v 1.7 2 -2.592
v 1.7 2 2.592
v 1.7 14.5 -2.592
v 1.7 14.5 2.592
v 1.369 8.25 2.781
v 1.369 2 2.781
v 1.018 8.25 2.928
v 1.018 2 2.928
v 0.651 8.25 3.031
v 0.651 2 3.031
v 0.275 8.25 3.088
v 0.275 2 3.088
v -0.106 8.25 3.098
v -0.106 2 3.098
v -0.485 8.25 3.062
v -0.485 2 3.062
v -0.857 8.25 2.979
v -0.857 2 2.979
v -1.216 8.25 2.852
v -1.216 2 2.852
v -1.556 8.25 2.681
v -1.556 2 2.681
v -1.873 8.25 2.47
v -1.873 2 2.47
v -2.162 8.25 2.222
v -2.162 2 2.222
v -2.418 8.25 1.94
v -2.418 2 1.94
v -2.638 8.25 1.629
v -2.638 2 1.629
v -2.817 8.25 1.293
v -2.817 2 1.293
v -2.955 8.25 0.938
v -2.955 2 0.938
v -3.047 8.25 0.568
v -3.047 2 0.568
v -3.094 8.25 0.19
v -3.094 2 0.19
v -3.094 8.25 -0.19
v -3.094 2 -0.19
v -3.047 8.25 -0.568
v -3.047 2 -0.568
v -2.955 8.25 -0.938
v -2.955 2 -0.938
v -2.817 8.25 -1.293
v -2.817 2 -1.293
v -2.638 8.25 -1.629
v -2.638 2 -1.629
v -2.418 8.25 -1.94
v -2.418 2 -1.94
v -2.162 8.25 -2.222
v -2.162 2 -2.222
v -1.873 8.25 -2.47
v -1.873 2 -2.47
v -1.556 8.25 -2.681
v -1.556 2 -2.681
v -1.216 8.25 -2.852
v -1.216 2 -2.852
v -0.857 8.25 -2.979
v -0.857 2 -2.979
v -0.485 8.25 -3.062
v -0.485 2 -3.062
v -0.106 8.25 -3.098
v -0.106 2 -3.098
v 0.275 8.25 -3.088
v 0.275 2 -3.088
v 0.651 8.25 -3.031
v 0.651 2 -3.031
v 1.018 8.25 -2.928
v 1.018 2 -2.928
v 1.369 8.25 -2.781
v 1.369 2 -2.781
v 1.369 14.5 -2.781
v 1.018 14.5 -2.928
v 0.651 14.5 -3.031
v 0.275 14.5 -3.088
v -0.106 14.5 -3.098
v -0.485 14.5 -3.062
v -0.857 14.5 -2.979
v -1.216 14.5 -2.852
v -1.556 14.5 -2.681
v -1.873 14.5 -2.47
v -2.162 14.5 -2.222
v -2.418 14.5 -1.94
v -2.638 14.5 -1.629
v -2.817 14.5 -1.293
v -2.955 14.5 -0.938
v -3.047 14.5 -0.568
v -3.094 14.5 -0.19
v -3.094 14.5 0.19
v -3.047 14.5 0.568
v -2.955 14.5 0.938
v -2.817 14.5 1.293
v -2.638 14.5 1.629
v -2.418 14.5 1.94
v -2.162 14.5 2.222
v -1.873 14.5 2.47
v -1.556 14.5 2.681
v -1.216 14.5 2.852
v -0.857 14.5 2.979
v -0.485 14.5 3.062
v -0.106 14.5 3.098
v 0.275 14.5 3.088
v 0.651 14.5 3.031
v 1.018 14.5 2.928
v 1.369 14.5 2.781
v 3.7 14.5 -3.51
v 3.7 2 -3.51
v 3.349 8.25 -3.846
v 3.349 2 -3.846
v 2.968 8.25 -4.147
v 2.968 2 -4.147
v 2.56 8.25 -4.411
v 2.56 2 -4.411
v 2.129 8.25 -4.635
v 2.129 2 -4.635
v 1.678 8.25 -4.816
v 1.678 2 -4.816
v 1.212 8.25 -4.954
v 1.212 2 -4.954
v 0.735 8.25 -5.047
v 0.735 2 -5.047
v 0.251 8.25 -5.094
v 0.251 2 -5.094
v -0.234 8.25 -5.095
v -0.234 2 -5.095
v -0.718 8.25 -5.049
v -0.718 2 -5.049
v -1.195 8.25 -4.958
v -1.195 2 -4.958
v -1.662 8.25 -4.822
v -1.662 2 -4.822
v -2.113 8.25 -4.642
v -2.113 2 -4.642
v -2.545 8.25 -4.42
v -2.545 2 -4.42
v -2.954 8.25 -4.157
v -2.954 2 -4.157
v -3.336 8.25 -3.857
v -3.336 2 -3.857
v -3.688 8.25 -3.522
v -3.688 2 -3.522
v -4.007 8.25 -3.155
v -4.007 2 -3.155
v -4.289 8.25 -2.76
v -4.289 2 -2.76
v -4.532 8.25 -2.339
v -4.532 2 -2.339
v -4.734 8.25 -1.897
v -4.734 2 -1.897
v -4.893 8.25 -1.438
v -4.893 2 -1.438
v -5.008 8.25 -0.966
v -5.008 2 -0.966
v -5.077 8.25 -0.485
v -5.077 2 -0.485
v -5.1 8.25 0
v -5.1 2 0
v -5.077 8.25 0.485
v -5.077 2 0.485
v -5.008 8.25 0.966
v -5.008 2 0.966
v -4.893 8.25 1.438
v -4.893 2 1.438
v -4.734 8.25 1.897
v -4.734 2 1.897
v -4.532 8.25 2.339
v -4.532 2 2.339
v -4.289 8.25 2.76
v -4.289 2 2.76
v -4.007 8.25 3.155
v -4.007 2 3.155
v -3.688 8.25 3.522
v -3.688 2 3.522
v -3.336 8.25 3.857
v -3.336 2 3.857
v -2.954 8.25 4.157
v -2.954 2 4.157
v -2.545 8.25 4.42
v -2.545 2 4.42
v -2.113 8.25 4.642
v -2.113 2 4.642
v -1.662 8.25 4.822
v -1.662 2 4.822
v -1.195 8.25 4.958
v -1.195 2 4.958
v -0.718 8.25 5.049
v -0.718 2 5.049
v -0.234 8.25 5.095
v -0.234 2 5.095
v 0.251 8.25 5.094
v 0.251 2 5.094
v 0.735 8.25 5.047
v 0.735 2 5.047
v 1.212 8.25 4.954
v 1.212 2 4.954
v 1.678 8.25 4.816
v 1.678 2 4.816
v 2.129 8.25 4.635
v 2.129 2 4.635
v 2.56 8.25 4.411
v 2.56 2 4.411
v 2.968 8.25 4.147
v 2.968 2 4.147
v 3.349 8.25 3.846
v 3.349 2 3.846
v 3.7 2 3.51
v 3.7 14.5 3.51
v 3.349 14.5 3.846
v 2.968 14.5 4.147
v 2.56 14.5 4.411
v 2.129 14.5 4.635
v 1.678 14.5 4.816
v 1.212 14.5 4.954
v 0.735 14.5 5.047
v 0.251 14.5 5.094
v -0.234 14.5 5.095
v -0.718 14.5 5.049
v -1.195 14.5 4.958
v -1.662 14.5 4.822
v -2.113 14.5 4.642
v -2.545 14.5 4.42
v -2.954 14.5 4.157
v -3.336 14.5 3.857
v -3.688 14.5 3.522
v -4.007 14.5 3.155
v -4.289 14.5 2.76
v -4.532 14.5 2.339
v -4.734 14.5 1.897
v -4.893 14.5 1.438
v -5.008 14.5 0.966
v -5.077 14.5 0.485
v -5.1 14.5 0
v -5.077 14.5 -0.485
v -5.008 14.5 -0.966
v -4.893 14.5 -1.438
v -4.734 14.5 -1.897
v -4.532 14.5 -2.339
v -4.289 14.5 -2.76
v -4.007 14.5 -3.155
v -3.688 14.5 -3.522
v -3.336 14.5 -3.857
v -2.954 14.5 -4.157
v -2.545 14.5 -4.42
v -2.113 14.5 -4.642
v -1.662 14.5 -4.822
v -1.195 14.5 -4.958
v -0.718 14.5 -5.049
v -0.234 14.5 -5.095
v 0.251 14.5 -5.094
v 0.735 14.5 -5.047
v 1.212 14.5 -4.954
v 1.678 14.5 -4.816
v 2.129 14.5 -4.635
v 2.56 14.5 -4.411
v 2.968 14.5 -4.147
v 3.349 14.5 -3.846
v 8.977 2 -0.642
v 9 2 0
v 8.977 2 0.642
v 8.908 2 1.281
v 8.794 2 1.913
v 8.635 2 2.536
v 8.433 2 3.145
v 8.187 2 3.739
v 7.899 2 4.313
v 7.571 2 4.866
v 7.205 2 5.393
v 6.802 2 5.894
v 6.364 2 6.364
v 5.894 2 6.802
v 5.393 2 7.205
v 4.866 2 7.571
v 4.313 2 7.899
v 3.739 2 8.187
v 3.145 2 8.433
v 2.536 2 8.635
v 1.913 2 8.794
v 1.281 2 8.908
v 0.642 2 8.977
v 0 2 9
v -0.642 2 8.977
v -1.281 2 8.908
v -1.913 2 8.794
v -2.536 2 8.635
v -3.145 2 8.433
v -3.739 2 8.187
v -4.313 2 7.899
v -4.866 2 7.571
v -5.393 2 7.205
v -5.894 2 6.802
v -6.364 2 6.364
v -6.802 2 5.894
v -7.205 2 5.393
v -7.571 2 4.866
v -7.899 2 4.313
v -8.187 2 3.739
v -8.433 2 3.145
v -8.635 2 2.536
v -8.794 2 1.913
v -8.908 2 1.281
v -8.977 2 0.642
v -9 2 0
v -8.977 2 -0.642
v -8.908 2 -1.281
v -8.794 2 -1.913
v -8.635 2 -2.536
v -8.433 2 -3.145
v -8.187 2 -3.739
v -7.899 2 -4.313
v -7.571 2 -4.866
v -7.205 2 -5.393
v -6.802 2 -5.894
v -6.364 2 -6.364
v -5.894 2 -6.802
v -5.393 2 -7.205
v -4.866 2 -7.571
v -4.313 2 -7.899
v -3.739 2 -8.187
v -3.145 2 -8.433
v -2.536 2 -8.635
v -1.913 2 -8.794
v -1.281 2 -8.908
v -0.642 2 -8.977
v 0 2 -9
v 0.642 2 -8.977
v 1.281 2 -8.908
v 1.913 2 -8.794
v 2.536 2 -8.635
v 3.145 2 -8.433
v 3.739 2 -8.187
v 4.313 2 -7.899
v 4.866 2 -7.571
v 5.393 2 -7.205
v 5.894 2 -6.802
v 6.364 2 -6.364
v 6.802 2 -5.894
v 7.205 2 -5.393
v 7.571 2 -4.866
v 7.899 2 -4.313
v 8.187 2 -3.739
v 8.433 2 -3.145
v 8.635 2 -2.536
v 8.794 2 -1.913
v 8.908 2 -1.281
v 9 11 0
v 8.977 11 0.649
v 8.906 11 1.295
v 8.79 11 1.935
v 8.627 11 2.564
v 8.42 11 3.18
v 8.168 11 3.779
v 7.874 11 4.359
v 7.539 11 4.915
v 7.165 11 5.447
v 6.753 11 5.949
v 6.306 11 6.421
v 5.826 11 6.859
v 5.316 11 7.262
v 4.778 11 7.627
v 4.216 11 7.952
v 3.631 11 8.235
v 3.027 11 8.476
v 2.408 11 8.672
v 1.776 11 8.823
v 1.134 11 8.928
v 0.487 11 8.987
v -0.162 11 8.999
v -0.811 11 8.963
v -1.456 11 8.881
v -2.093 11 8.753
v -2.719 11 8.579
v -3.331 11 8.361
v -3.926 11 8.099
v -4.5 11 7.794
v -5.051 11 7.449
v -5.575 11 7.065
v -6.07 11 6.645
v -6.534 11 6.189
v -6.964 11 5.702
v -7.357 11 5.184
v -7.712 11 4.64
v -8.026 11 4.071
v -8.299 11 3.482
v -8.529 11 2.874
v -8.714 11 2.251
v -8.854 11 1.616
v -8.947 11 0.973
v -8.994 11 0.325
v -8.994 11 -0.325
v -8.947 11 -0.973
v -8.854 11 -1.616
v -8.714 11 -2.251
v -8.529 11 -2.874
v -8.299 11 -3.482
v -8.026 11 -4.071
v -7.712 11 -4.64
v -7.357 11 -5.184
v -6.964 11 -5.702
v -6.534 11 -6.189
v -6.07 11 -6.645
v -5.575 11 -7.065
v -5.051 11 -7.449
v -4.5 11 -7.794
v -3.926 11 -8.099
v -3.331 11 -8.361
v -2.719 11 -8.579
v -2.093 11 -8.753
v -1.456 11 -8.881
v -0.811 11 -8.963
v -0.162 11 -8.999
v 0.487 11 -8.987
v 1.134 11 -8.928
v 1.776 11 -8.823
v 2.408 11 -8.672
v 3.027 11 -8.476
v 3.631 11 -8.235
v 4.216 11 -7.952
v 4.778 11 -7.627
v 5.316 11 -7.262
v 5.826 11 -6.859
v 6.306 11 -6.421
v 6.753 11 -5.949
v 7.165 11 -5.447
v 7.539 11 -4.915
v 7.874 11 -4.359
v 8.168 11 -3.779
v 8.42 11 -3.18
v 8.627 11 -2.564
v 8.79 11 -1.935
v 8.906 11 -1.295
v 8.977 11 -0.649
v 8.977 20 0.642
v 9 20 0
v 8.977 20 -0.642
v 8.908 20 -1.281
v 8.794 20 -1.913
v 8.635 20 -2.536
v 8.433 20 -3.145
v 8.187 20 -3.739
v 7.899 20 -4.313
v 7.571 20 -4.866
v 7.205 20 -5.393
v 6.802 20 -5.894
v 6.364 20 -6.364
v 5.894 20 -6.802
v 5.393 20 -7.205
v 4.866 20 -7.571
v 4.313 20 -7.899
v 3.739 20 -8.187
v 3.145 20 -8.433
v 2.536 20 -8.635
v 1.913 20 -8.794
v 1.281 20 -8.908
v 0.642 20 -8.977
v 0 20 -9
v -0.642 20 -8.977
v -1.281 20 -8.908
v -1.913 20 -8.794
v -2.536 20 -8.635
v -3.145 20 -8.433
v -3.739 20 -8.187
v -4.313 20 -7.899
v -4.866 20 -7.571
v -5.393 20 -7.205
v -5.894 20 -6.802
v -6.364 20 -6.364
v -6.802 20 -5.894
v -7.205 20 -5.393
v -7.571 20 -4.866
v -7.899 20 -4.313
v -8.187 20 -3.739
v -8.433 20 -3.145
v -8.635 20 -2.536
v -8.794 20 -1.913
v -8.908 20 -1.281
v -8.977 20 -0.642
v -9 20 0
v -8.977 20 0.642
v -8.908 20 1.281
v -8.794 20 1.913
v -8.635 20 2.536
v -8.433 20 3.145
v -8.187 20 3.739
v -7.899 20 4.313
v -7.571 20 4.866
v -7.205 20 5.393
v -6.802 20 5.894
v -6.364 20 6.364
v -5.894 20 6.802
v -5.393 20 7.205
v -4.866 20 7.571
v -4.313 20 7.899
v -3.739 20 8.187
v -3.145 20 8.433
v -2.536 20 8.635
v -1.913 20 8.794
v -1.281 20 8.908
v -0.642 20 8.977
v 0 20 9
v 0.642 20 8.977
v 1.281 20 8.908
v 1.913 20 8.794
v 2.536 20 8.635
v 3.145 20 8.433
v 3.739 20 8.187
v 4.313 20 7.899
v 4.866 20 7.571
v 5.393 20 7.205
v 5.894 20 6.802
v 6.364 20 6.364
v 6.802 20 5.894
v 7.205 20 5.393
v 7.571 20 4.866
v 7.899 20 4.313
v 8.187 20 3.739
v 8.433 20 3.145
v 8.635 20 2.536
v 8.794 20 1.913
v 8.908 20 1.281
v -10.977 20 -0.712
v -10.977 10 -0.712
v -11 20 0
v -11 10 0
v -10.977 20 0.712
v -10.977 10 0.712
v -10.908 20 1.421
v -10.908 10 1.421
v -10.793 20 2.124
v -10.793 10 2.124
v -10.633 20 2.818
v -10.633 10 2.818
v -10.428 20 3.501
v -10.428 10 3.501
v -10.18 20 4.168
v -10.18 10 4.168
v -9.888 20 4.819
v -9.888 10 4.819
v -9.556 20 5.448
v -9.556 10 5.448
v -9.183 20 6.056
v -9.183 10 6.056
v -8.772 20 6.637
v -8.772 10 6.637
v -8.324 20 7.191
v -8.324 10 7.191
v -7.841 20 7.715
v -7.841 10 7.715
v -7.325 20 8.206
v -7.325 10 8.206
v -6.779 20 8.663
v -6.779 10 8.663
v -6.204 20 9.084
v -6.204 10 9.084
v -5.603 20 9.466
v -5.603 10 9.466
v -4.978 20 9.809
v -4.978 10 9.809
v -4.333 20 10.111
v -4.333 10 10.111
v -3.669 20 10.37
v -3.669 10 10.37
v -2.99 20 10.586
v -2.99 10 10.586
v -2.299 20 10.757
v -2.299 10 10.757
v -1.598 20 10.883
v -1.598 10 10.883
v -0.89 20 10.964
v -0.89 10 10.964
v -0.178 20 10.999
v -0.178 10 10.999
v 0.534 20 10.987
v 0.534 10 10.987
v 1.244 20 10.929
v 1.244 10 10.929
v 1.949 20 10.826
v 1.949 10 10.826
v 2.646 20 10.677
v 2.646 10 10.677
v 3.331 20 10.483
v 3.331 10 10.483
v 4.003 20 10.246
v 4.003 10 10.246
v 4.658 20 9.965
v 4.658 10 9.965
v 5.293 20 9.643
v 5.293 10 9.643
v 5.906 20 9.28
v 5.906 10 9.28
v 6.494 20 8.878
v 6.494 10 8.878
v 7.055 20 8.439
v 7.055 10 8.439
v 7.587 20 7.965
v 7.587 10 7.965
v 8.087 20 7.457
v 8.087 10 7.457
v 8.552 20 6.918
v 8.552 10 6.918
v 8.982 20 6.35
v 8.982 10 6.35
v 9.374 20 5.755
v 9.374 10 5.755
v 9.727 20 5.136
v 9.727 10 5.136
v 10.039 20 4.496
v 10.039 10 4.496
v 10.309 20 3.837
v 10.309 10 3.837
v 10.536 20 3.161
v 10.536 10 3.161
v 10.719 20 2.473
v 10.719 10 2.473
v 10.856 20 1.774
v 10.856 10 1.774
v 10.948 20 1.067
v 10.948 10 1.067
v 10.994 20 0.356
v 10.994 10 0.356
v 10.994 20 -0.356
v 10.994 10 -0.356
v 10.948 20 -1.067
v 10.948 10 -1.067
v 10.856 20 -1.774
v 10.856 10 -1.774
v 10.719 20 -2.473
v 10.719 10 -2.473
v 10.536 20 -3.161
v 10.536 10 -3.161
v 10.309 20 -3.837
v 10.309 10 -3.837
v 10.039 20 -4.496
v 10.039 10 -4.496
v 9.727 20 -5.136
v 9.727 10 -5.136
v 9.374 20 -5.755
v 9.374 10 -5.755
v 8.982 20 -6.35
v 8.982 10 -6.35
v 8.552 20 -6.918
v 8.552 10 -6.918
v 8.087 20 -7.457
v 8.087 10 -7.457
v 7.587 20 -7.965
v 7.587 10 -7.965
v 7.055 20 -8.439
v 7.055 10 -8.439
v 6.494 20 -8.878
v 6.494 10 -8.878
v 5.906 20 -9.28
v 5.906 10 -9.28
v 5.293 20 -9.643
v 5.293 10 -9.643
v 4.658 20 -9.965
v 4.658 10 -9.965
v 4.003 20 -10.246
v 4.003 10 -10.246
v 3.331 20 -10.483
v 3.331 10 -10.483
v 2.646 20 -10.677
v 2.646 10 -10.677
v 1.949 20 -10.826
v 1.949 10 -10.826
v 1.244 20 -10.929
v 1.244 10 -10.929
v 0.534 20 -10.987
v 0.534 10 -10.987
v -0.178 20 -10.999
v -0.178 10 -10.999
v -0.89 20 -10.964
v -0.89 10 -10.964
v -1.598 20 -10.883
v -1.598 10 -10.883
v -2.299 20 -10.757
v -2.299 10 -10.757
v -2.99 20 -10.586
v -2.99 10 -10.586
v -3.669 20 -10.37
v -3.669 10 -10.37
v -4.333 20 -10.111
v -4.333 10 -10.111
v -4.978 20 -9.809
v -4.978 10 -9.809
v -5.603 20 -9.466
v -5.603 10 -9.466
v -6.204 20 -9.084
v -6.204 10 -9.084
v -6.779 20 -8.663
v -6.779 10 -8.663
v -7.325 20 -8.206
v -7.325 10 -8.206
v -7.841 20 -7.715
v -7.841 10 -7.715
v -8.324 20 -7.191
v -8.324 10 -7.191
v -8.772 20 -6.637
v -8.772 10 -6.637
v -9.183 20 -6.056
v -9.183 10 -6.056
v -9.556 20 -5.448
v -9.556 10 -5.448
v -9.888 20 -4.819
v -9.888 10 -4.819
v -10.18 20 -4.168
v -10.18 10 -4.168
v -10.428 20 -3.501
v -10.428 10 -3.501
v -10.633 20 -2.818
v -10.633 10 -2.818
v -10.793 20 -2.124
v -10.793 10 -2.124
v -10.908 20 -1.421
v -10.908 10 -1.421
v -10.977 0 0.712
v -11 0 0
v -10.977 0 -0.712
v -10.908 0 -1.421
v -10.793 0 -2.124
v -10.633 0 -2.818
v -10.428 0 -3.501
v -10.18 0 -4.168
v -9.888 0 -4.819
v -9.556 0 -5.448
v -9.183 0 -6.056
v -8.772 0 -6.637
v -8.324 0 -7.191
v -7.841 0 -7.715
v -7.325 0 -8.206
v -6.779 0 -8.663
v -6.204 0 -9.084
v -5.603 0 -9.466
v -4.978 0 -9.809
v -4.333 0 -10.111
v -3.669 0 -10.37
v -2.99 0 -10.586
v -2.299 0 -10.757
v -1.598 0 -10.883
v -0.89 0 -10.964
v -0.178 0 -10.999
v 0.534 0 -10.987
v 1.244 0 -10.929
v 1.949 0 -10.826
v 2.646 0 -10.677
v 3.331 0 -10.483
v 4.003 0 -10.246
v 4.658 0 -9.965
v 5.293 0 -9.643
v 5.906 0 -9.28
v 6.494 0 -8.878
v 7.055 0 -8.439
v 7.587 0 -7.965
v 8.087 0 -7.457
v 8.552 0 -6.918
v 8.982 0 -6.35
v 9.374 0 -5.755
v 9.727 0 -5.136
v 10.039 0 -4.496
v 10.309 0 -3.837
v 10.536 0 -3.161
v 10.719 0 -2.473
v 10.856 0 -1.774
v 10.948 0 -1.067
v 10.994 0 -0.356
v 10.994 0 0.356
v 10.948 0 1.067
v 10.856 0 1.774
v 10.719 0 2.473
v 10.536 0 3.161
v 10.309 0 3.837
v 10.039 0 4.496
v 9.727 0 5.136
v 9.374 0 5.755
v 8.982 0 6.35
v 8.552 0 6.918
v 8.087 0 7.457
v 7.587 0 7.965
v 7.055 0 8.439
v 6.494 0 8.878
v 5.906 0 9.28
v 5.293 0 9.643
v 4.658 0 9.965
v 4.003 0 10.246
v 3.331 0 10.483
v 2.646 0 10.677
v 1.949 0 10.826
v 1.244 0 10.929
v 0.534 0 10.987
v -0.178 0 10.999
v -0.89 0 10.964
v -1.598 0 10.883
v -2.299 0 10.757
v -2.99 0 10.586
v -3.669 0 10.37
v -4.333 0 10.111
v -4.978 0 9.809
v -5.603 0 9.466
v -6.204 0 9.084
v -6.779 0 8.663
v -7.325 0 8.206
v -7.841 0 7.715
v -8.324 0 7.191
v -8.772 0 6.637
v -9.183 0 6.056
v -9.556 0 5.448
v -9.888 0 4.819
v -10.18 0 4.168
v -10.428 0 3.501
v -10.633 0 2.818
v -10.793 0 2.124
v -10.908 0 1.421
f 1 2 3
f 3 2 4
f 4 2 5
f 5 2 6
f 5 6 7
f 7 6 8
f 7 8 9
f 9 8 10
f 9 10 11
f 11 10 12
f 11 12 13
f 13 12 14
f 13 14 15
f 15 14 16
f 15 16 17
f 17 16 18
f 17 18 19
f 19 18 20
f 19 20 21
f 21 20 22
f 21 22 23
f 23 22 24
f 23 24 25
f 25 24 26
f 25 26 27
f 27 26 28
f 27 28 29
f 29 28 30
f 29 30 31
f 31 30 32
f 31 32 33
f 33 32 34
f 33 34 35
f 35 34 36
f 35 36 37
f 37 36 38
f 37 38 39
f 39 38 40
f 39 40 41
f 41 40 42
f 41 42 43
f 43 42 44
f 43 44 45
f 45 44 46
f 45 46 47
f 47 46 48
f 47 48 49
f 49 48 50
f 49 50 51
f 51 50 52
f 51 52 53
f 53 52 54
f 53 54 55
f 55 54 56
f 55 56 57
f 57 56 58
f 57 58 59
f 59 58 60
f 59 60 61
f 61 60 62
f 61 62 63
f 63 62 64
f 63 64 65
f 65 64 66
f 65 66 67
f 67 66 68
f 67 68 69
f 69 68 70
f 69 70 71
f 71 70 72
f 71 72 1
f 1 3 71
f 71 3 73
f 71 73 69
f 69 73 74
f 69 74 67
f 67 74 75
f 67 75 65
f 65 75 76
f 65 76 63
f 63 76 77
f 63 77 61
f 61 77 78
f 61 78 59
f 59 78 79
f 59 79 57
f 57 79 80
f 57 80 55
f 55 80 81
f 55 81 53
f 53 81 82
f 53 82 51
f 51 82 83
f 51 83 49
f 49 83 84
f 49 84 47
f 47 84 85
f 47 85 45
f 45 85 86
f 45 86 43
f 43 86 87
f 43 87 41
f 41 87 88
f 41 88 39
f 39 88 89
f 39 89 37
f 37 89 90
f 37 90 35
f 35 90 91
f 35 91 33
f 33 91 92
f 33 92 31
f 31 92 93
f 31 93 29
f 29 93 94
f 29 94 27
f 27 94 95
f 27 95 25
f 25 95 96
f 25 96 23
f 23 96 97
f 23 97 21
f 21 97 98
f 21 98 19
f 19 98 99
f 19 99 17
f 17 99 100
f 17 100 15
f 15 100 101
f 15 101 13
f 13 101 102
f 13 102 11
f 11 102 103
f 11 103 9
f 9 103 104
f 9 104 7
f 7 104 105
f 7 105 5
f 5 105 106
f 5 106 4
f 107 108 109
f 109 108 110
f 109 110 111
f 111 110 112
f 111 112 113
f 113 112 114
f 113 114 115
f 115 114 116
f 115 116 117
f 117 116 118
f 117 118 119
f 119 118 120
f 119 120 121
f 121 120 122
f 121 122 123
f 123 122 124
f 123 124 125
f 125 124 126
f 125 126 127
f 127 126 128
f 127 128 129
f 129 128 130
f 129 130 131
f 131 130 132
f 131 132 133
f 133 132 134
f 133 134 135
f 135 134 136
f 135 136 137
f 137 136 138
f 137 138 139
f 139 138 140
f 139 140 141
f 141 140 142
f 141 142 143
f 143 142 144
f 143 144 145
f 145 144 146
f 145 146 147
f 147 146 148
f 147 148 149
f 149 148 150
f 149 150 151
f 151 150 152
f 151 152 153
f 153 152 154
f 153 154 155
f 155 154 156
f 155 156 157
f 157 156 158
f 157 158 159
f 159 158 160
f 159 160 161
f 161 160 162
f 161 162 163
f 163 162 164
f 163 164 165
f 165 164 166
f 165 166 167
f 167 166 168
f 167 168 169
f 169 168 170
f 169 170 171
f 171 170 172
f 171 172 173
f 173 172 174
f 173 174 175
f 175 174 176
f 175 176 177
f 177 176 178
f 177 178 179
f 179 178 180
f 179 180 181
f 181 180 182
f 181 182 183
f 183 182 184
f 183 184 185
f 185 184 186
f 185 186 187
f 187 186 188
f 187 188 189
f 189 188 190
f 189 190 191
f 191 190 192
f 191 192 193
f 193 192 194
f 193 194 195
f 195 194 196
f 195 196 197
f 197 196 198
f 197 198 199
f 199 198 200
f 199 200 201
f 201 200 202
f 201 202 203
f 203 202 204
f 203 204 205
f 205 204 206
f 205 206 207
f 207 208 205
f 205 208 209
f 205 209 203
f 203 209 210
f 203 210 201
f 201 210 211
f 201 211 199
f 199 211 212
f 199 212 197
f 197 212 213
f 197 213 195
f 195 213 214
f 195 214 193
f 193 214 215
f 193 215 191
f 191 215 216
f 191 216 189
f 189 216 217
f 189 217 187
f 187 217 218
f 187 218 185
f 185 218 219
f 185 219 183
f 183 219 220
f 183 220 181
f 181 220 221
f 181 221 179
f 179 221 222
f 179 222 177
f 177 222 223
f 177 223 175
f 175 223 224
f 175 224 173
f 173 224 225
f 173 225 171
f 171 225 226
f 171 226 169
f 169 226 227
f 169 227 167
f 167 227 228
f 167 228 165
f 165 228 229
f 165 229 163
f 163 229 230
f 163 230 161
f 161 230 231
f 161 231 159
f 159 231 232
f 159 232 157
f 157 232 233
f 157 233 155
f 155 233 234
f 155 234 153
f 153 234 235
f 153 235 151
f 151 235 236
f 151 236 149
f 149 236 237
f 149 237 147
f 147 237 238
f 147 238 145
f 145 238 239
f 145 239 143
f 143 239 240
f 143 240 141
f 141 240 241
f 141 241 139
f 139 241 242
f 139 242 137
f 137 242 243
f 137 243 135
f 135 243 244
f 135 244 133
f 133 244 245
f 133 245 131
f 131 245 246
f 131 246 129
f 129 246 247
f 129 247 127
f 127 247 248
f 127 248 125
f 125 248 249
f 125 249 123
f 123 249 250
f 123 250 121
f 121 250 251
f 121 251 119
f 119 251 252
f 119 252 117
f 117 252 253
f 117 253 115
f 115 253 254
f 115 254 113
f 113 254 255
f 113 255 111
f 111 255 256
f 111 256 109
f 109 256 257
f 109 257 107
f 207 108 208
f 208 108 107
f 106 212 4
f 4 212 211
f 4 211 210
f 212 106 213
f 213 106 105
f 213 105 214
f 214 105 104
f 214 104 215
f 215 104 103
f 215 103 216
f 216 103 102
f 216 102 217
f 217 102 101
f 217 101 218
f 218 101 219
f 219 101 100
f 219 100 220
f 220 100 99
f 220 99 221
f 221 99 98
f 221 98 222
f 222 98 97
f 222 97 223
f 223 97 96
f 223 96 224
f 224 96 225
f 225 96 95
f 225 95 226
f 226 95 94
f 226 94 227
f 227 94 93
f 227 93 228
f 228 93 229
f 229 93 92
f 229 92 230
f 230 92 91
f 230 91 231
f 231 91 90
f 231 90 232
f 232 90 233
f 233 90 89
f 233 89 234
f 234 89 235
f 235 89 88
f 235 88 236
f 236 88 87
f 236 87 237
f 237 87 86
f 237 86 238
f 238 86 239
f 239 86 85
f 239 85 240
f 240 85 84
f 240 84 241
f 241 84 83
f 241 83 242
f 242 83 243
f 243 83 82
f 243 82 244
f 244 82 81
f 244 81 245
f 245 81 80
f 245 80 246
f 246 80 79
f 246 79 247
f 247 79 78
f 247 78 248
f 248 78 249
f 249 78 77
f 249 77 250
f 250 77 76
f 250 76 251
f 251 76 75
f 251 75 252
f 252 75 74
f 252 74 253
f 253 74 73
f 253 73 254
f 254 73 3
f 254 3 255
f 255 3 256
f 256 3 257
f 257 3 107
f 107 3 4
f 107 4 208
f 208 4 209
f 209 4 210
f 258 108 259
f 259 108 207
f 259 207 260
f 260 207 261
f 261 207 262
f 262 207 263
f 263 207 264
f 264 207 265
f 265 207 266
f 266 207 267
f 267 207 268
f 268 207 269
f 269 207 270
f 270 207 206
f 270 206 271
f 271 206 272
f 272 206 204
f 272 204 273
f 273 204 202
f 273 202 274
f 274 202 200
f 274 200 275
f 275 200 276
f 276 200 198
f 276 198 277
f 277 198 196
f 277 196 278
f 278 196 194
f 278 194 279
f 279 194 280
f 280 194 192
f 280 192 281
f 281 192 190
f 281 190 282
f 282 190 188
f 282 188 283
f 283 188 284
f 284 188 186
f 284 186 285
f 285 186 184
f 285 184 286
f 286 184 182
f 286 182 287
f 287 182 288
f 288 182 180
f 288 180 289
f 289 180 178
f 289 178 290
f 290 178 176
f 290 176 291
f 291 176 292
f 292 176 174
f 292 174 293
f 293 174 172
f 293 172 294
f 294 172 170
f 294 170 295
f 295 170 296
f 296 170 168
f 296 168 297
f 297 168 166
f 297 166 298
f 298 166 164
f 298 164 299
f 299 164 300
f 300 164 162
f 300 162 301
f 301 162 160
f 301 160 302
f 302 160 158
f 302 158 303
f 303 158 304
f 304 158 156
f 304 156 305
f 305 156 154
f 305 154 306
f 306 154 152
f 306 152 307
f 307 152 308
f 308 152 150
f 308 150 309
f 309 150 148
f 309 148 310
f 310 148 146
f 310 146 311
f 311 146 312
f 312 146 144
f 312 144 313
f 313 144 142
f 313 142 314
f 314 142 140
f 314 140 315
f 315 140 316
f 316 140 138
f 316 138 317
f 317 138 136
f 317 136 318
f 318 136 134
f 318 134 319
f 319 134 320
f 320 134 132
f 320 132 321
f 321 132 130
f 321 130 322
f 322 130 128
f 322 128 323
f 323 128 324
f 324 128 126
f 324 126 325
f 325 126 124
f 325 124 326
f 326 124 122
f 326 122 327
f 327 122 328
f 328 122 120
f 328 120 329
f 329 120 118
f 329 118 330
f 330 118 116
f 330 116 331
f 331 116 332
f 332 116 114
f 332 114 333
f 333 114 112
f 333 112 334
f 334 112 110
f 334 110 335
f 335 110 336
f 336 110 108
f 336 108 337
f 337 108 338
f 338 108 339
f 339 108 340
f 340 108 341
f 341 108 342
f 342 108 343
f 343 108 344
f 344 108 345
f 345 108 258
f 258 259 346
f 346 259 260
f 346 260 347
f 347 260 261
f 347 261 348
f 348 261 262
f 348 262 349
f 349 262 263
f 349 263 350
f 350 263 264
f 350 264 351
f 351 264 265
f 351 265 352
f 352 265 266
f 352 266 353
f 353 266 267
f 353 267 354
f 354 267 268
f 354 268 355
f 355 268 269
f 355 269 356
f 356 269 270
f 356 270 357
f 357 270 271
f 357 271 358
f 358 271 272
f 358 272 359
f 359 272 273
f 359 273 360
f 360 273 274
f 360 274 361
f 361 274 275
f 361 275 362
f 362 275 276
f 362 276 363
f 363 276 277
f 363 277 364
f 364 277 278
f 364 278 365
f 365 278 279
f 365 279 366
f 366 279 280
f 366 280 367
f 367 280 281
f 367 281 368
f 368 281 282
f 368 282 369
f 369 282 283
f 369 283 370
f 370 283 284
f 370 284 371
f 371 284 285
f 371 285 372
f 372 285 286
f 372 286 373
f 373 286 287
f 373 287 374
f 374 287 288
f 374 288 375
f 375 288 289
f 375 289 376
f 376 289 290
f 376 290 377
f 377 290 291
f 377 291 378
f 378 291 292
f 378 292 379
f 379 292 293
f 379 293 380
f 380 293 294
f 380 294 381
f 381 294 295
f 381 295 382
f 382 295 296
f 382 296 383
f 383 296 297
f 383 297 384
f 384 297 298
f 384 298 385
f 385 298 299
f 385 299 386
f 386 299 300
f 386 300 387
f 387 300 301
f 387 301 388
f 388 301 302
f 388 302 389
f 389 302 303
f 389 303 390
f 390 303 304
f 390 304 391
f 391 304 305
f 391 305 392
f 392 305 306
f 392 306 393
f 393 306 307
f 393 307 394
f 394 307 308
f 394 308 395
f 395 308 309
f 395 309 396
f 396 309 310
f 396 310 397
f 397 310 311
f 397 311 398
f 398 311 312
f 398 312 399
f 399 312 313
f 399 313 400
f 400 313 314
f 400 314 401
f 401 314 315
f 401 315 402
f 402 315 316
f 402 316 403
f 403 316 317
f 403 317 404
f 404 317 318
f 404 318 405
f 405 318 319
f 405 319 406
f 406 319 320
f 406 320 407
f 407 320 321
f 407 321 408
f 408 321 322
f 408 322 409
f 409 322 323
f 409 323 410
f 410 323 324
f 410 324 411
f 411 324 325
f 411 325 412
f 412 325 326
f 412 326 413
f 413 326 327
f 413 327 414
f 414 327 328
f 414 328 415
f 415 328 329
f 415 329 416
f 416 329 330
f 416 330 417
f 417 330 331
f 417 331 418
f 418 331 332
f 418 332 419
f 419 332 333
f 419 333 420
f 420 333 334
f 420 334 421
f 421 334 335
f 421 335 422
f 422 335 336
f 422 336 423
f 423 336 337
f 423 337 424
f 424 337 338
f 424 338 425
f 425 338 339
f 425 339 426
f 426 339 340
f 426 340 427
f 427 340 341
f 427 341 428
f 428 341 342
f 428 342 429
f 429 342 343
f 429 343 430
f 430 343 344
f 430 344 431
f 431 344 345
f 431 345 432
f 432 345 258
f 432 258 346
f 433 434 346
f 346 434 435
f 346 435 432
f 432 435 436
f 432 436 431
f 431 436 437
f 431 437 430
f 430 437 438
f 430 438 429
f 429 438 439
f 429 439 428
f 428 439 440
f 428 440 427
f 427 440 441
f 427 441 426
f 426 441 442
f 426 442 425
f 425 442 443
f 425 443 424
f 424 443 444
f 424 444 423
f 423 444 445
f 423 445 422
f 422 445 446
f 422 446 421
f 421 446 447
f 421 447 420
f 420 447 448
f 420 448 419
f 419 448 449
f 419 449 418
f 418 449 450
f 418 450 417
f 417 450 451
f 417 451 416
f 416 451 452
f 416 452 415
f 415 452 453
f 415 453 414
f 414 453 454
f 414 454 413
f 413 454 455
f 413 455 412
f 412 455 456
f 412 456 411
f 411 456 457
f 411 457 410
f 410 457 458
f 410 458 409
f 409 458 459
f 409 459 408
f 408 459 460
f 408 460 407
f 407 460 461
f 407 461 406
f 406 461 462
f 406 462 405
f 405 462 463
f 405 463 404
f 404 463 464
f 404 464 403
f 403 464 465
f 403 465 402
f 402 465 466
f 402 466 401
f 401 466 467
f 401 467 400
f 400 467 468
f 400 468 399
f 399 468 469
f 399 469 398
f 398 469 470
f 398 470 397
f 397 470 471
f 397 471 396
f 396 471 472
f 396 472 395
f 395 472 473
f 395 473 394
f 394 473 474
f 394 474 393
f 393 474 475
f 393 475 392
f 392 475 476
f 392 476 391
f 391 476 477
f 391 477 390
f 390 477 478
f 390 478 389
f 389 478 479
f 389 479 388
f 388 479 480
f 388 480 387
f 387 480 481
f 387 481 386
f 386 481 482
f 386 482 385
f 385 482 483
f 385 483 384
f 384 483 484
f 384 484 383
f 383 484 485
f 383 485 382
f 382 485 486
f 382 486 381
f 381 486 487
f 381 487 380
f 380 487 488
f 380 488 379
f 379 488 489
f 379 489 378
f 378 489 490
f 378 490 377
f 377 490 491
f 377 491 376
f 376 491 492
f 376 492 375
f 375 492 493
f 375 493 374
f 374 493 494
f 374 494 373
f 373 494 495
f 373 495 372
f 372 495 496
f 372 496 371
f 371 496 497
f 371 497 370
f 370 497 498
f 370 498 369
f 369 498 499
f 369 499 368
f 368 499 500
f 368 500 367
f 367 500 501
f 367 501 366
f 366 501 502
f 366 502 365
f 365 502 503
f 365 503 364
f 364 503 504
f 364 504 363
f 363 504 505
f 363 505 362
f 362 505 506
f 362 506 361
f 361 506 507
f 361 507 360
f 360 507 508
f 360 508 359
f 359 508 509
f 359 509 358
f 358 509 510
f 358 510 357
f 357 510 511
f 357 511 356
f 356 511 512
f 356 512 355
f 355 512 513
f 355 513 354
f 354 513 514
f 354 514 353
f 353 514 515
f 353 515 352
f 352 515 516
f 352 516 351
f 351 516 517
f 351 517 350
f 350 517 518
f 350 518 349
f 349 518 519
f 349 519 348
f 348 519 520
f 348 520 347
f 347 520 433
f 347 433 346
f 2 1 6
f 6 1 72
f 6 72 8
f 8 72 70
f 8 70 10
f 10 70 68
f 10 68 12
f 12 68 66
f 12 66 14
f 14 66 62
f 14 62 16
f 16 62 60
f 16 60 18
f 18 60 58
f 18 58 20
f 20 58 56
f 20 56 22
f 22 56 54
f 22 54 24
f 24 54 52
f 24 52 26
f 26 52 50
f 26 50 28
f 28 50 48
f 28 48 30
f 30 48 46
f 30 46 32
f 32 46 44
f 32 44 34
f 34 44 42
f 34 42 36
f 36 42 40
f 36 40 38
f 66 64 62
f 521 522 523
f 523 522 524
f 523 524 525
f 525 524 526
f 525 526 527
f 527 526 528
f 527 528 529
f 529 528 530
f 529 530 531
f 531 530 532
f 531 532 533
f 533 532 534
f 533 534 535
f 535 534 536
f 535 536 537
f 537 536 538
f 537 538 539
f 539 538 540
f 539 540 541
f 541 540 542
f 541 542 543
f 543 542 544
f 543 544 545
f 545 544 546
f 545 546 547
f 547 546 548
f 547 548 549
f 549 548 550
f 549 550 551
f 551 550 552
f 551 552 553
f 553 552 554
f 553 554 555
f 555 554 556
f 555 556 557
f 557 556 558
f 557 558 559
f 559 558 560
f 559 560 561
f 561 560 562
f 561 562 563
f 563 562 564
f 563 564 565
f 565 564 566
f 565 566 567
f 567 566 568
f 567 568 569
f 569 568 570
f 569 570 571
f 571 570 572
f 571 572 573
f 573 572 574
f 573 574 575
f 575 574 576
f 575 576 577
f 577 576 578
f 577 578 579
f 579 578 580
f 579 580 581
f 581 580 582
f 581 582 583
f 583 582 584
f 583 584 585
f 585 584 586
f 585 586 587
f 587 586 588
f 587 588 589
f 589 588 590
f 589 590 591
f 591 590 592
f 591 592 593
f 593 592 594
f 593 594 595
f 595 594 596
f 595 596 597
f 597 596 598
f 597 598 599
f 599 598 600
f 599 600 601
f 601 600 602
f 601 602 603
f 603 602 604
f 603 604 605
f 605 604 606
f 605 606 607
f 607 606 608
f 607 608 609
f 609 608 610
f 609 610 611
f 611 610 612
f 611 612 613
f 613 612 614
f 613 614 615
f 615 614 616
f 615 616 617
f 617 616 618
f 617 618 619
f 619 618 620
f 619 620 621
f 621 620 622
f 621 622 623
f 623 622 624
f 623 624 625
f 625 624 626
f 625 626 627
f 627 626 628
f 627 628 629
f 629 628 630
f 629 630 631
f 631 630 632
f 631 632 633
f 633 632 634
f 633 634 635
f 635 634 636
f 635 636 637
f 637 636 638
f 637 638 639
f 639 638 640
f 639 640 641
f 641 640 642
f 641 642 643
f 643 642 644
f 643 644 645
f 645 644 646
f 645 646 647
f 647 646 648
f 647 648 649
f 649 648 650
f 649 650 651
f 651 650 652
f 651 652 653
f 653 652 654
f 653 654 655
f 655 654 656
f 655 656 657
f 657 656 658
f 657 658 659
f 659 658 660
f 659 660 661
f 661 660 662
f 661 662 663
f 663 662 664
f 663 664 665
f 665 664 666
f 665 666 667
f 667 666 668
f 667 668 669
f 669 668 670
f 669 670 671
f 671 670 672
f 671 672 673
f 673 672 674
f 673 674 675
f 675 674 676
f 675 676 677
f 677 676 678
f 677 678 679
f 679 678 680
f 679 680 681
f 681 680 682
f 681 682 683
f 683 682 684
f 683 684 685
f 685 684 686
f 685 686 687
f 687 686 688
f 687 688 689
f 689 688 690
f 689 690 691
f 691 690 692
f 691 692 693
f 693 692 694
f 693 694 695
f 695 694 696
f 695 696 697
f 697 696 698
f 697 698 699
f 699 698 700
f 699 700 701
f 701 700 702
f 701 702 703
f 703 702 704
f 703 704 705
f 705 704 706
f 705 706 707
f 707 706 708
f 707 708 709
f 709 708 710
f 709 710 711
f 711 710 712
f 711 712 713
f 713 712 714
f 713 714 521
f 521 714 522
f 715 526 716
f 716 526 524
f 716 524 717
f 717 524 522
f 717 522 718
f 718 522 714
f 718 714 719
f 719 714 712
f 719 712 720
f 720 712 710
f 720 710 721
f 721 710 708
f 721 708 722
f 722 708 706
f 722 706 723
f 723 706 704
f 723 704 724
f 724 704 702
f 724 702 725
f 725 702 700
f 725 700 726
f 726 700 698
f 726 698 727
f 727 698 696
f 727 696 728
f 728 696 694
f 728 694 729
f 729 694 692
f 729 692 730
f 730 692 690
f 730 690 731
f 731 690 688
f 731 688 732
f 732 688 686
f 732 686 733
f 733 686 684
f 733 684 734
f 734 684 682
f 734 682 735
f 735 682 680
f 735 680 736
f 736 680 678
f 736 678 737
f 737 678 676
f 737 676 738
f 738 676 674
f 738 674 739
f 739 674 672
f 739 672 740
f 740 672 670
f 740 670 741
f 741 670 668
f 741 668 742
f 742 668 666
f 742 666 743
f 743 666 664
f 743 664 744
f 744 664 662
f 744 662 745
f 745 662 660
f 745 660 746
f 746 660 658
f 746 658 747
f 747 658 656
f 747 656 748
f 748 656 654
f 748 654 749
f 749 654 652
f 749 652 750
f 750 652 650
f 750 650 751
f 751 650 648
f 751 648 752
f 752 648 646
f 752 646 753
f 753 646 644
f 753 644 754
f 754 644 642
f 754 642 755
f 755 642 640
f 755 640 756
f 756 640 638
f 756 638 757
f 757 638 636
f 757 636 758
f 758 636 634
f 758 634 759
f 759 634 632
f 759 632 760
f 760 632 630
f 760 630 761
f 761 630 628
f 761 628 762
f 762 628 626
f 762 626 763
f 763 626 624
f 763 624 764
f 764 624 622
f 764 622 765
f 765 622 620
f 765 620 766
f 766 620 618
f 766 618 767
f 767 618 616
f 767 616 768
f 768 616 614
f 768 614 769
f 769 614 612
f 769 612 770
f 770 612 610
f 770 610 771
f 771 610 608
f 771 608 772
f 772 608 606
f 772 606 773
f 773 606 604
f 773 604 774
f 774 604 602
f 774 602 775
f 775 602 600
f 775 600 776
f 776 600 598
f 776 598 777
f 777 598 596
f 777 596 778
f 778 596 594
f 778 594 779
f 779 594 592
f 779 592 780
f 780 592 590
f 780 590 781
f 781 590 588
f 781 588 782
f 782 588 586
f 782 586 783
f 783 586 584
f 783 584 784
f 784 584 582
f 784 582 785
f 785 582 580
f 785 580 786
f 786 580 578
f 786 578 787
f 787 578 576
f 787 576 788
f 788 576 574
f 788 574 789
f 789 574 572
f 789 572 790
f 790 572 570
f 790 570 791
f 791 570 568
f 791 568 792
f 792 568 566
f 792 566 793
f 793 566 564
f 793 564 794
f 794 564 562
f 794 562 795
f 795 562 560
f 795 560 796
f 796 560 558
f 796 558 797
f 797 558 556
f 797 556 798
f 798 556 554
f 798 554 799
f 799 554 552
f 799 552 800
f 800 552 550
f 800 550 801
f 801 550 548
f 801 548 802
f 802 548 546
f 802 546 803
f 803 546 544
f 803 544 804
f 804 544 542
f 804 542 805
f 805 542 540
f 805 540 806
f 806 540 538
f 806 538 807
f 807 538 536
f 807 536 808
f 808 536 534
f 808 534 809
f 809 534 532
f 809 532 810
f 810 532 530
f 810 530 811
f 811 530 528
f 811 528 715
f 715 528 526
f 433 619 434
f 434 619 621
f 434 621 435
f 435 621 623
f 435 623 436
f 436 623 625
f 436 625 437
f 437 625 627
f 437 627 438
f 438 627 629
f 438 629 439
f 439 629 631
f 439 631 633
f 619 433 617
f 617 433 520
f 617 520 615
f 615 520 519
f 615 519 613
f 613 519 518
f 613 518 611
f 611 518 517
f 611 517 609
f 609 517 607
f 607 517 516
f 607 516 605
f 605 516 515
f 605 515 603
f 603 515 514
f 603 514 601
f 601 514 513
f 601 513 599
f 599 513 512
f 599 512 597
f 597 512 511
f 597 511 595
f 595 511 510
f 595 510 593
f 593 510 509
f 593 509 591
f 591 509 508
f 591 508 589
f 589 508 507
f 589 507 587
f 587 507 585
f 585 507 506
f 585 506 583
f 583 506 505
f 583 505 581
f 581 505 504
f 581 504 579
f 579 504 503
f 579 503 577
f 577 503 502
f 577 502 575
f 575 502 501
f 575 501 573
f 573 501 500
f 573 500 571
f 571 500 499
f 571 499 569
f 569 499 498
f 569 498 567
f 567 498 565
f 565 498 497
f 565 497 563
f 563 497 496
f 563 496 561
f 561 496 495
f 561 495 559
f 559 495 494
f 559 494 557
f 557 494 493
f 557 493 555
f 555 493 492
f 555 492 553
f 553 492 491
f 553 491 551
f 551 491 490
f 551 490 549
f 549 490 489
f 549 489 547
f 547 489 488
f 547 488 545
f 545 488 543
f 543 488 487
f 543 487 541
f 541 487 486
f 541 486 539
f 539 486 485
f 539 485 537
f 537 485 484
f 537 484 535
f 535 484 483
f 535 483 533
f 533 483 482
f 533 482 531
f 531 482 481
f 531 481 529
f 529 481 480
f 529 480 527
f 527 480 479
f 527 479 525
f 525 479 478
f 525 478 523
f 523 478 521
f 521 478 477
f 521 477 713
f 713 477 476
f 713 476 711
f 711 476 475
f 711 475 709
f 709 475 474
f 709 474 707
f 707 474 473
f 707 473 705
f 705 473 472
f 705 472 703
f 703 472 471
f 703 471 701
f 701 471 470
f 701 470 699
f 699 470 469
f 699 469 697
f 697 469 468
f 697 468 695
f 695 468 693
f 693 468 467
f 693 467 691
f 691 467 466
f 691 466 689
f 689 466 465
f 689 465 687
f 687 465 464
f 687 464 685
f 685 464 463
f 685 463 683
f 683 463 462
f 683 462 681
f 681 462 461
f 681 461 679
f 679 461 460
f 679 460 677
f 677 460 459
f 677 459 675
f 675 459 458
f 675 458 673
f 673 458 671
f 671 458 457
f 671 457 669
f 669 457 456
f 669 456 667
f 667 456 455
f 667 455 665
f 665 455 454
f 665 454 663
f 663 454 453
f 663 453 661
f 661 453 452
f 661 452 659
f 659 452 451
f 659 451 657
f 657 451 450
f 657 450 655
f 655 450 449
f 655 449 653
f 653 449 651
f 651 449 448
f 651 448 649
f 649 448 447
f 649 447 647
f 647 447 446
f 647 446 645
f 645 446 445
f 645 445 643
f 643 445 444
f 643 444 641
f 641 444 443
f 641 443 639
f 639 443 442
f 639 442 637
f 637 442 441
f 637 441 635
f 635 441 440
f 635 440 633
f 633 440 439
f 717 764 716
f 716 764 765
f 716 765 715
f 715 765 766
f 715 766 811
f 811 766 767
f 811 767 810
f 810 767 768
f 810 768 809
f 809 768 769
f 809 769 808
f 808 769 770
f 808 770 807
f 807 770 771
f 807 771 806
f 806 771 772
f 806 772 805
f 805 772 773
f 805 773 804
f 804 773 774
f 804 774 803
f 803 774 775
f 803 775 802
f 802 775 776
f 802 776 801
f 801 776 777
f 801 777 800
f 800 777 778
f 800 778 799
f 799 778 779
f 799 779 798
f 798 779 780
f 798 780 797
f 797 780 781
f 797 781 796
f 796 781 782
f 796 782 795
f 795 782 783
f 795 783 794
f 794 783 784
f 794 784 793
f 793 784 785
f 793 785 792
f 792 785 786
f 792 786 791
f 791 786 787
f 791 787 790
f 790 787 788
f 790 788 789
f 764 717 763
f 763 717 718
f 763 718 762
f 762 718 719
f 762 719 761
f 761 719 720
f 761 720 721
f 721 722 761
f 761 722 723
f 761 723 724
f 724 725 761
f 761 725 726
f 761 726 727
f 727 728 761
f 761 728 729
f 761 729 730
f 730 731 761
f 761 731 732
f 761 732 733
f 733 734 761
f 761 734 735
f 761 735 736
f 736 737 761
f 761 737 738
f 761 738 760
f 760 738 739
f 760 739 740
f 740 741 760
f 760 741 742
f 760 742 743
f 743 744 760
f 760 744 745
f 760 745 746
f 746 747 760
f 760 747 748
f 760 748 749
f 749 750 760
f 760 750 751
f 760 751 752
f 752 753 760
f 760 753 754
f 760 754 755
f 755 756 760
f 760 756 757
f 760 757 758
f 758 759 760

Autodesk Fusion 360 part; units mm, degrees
sketch "Outer" plane through (0, 0, 0) normal (0, 1, 0) x (1, 0, 0)
  circle A0 centre (0, 0) radius 11
  dimension "d1" = 22
extrude "Outer Extrusion" add sketch "Outer" along normal blind 20
sketch "Inner" plane through (0, 20, 0) normal (0, 1, 0) x (-1, 0, 0)
  circle A0 centre (0, 0) radius 11
  circle A1 centre (0, 0) radius 9
  dimension "d4" = 18
extrude "Inner Extrusion" cut sketch "Inner" against normal blind 18 contours A1
sketch "Shaft" plane through (0, 2, 0) normal (0, 1, 0) x (-1, 0, 0)
  circle A0 centre (0, 0) radius 9
  line L0 (-1.7, 2.5923) -> (-1.7, -2.5923)
  arc A1 (-1.7, -2.5923) -> (-1.7, 2.5923) centre (0, 0) ccw
  arc A2 (-3.7, -3.51) -> (-3.7, 3.51) centre (0, 0) ccw
  line L1 (-3.7, 3.51) -> (-3.7, -3.51)
  dimension "d7" = 6.2
  dimension "d8" = 1.7
  dimension "d9" = 2
extrude "Shaft Extrusion" add sketch "Shaft" along normal blind 12.5 contours A2 L1
equation "d5 = -( 20 mm - 2 mm )"
equation "d7 = 5.8 mm + 0.2 mm + 0.2 mm"
equation "d8 = ( 4.5 mm - 3 mm ) + 0.2 mm"
equation "d10 = 20 mm - 2 mm - 5.5 mm"
equation "d14 = 20 mm - 2 mm - 5.5 mm"
